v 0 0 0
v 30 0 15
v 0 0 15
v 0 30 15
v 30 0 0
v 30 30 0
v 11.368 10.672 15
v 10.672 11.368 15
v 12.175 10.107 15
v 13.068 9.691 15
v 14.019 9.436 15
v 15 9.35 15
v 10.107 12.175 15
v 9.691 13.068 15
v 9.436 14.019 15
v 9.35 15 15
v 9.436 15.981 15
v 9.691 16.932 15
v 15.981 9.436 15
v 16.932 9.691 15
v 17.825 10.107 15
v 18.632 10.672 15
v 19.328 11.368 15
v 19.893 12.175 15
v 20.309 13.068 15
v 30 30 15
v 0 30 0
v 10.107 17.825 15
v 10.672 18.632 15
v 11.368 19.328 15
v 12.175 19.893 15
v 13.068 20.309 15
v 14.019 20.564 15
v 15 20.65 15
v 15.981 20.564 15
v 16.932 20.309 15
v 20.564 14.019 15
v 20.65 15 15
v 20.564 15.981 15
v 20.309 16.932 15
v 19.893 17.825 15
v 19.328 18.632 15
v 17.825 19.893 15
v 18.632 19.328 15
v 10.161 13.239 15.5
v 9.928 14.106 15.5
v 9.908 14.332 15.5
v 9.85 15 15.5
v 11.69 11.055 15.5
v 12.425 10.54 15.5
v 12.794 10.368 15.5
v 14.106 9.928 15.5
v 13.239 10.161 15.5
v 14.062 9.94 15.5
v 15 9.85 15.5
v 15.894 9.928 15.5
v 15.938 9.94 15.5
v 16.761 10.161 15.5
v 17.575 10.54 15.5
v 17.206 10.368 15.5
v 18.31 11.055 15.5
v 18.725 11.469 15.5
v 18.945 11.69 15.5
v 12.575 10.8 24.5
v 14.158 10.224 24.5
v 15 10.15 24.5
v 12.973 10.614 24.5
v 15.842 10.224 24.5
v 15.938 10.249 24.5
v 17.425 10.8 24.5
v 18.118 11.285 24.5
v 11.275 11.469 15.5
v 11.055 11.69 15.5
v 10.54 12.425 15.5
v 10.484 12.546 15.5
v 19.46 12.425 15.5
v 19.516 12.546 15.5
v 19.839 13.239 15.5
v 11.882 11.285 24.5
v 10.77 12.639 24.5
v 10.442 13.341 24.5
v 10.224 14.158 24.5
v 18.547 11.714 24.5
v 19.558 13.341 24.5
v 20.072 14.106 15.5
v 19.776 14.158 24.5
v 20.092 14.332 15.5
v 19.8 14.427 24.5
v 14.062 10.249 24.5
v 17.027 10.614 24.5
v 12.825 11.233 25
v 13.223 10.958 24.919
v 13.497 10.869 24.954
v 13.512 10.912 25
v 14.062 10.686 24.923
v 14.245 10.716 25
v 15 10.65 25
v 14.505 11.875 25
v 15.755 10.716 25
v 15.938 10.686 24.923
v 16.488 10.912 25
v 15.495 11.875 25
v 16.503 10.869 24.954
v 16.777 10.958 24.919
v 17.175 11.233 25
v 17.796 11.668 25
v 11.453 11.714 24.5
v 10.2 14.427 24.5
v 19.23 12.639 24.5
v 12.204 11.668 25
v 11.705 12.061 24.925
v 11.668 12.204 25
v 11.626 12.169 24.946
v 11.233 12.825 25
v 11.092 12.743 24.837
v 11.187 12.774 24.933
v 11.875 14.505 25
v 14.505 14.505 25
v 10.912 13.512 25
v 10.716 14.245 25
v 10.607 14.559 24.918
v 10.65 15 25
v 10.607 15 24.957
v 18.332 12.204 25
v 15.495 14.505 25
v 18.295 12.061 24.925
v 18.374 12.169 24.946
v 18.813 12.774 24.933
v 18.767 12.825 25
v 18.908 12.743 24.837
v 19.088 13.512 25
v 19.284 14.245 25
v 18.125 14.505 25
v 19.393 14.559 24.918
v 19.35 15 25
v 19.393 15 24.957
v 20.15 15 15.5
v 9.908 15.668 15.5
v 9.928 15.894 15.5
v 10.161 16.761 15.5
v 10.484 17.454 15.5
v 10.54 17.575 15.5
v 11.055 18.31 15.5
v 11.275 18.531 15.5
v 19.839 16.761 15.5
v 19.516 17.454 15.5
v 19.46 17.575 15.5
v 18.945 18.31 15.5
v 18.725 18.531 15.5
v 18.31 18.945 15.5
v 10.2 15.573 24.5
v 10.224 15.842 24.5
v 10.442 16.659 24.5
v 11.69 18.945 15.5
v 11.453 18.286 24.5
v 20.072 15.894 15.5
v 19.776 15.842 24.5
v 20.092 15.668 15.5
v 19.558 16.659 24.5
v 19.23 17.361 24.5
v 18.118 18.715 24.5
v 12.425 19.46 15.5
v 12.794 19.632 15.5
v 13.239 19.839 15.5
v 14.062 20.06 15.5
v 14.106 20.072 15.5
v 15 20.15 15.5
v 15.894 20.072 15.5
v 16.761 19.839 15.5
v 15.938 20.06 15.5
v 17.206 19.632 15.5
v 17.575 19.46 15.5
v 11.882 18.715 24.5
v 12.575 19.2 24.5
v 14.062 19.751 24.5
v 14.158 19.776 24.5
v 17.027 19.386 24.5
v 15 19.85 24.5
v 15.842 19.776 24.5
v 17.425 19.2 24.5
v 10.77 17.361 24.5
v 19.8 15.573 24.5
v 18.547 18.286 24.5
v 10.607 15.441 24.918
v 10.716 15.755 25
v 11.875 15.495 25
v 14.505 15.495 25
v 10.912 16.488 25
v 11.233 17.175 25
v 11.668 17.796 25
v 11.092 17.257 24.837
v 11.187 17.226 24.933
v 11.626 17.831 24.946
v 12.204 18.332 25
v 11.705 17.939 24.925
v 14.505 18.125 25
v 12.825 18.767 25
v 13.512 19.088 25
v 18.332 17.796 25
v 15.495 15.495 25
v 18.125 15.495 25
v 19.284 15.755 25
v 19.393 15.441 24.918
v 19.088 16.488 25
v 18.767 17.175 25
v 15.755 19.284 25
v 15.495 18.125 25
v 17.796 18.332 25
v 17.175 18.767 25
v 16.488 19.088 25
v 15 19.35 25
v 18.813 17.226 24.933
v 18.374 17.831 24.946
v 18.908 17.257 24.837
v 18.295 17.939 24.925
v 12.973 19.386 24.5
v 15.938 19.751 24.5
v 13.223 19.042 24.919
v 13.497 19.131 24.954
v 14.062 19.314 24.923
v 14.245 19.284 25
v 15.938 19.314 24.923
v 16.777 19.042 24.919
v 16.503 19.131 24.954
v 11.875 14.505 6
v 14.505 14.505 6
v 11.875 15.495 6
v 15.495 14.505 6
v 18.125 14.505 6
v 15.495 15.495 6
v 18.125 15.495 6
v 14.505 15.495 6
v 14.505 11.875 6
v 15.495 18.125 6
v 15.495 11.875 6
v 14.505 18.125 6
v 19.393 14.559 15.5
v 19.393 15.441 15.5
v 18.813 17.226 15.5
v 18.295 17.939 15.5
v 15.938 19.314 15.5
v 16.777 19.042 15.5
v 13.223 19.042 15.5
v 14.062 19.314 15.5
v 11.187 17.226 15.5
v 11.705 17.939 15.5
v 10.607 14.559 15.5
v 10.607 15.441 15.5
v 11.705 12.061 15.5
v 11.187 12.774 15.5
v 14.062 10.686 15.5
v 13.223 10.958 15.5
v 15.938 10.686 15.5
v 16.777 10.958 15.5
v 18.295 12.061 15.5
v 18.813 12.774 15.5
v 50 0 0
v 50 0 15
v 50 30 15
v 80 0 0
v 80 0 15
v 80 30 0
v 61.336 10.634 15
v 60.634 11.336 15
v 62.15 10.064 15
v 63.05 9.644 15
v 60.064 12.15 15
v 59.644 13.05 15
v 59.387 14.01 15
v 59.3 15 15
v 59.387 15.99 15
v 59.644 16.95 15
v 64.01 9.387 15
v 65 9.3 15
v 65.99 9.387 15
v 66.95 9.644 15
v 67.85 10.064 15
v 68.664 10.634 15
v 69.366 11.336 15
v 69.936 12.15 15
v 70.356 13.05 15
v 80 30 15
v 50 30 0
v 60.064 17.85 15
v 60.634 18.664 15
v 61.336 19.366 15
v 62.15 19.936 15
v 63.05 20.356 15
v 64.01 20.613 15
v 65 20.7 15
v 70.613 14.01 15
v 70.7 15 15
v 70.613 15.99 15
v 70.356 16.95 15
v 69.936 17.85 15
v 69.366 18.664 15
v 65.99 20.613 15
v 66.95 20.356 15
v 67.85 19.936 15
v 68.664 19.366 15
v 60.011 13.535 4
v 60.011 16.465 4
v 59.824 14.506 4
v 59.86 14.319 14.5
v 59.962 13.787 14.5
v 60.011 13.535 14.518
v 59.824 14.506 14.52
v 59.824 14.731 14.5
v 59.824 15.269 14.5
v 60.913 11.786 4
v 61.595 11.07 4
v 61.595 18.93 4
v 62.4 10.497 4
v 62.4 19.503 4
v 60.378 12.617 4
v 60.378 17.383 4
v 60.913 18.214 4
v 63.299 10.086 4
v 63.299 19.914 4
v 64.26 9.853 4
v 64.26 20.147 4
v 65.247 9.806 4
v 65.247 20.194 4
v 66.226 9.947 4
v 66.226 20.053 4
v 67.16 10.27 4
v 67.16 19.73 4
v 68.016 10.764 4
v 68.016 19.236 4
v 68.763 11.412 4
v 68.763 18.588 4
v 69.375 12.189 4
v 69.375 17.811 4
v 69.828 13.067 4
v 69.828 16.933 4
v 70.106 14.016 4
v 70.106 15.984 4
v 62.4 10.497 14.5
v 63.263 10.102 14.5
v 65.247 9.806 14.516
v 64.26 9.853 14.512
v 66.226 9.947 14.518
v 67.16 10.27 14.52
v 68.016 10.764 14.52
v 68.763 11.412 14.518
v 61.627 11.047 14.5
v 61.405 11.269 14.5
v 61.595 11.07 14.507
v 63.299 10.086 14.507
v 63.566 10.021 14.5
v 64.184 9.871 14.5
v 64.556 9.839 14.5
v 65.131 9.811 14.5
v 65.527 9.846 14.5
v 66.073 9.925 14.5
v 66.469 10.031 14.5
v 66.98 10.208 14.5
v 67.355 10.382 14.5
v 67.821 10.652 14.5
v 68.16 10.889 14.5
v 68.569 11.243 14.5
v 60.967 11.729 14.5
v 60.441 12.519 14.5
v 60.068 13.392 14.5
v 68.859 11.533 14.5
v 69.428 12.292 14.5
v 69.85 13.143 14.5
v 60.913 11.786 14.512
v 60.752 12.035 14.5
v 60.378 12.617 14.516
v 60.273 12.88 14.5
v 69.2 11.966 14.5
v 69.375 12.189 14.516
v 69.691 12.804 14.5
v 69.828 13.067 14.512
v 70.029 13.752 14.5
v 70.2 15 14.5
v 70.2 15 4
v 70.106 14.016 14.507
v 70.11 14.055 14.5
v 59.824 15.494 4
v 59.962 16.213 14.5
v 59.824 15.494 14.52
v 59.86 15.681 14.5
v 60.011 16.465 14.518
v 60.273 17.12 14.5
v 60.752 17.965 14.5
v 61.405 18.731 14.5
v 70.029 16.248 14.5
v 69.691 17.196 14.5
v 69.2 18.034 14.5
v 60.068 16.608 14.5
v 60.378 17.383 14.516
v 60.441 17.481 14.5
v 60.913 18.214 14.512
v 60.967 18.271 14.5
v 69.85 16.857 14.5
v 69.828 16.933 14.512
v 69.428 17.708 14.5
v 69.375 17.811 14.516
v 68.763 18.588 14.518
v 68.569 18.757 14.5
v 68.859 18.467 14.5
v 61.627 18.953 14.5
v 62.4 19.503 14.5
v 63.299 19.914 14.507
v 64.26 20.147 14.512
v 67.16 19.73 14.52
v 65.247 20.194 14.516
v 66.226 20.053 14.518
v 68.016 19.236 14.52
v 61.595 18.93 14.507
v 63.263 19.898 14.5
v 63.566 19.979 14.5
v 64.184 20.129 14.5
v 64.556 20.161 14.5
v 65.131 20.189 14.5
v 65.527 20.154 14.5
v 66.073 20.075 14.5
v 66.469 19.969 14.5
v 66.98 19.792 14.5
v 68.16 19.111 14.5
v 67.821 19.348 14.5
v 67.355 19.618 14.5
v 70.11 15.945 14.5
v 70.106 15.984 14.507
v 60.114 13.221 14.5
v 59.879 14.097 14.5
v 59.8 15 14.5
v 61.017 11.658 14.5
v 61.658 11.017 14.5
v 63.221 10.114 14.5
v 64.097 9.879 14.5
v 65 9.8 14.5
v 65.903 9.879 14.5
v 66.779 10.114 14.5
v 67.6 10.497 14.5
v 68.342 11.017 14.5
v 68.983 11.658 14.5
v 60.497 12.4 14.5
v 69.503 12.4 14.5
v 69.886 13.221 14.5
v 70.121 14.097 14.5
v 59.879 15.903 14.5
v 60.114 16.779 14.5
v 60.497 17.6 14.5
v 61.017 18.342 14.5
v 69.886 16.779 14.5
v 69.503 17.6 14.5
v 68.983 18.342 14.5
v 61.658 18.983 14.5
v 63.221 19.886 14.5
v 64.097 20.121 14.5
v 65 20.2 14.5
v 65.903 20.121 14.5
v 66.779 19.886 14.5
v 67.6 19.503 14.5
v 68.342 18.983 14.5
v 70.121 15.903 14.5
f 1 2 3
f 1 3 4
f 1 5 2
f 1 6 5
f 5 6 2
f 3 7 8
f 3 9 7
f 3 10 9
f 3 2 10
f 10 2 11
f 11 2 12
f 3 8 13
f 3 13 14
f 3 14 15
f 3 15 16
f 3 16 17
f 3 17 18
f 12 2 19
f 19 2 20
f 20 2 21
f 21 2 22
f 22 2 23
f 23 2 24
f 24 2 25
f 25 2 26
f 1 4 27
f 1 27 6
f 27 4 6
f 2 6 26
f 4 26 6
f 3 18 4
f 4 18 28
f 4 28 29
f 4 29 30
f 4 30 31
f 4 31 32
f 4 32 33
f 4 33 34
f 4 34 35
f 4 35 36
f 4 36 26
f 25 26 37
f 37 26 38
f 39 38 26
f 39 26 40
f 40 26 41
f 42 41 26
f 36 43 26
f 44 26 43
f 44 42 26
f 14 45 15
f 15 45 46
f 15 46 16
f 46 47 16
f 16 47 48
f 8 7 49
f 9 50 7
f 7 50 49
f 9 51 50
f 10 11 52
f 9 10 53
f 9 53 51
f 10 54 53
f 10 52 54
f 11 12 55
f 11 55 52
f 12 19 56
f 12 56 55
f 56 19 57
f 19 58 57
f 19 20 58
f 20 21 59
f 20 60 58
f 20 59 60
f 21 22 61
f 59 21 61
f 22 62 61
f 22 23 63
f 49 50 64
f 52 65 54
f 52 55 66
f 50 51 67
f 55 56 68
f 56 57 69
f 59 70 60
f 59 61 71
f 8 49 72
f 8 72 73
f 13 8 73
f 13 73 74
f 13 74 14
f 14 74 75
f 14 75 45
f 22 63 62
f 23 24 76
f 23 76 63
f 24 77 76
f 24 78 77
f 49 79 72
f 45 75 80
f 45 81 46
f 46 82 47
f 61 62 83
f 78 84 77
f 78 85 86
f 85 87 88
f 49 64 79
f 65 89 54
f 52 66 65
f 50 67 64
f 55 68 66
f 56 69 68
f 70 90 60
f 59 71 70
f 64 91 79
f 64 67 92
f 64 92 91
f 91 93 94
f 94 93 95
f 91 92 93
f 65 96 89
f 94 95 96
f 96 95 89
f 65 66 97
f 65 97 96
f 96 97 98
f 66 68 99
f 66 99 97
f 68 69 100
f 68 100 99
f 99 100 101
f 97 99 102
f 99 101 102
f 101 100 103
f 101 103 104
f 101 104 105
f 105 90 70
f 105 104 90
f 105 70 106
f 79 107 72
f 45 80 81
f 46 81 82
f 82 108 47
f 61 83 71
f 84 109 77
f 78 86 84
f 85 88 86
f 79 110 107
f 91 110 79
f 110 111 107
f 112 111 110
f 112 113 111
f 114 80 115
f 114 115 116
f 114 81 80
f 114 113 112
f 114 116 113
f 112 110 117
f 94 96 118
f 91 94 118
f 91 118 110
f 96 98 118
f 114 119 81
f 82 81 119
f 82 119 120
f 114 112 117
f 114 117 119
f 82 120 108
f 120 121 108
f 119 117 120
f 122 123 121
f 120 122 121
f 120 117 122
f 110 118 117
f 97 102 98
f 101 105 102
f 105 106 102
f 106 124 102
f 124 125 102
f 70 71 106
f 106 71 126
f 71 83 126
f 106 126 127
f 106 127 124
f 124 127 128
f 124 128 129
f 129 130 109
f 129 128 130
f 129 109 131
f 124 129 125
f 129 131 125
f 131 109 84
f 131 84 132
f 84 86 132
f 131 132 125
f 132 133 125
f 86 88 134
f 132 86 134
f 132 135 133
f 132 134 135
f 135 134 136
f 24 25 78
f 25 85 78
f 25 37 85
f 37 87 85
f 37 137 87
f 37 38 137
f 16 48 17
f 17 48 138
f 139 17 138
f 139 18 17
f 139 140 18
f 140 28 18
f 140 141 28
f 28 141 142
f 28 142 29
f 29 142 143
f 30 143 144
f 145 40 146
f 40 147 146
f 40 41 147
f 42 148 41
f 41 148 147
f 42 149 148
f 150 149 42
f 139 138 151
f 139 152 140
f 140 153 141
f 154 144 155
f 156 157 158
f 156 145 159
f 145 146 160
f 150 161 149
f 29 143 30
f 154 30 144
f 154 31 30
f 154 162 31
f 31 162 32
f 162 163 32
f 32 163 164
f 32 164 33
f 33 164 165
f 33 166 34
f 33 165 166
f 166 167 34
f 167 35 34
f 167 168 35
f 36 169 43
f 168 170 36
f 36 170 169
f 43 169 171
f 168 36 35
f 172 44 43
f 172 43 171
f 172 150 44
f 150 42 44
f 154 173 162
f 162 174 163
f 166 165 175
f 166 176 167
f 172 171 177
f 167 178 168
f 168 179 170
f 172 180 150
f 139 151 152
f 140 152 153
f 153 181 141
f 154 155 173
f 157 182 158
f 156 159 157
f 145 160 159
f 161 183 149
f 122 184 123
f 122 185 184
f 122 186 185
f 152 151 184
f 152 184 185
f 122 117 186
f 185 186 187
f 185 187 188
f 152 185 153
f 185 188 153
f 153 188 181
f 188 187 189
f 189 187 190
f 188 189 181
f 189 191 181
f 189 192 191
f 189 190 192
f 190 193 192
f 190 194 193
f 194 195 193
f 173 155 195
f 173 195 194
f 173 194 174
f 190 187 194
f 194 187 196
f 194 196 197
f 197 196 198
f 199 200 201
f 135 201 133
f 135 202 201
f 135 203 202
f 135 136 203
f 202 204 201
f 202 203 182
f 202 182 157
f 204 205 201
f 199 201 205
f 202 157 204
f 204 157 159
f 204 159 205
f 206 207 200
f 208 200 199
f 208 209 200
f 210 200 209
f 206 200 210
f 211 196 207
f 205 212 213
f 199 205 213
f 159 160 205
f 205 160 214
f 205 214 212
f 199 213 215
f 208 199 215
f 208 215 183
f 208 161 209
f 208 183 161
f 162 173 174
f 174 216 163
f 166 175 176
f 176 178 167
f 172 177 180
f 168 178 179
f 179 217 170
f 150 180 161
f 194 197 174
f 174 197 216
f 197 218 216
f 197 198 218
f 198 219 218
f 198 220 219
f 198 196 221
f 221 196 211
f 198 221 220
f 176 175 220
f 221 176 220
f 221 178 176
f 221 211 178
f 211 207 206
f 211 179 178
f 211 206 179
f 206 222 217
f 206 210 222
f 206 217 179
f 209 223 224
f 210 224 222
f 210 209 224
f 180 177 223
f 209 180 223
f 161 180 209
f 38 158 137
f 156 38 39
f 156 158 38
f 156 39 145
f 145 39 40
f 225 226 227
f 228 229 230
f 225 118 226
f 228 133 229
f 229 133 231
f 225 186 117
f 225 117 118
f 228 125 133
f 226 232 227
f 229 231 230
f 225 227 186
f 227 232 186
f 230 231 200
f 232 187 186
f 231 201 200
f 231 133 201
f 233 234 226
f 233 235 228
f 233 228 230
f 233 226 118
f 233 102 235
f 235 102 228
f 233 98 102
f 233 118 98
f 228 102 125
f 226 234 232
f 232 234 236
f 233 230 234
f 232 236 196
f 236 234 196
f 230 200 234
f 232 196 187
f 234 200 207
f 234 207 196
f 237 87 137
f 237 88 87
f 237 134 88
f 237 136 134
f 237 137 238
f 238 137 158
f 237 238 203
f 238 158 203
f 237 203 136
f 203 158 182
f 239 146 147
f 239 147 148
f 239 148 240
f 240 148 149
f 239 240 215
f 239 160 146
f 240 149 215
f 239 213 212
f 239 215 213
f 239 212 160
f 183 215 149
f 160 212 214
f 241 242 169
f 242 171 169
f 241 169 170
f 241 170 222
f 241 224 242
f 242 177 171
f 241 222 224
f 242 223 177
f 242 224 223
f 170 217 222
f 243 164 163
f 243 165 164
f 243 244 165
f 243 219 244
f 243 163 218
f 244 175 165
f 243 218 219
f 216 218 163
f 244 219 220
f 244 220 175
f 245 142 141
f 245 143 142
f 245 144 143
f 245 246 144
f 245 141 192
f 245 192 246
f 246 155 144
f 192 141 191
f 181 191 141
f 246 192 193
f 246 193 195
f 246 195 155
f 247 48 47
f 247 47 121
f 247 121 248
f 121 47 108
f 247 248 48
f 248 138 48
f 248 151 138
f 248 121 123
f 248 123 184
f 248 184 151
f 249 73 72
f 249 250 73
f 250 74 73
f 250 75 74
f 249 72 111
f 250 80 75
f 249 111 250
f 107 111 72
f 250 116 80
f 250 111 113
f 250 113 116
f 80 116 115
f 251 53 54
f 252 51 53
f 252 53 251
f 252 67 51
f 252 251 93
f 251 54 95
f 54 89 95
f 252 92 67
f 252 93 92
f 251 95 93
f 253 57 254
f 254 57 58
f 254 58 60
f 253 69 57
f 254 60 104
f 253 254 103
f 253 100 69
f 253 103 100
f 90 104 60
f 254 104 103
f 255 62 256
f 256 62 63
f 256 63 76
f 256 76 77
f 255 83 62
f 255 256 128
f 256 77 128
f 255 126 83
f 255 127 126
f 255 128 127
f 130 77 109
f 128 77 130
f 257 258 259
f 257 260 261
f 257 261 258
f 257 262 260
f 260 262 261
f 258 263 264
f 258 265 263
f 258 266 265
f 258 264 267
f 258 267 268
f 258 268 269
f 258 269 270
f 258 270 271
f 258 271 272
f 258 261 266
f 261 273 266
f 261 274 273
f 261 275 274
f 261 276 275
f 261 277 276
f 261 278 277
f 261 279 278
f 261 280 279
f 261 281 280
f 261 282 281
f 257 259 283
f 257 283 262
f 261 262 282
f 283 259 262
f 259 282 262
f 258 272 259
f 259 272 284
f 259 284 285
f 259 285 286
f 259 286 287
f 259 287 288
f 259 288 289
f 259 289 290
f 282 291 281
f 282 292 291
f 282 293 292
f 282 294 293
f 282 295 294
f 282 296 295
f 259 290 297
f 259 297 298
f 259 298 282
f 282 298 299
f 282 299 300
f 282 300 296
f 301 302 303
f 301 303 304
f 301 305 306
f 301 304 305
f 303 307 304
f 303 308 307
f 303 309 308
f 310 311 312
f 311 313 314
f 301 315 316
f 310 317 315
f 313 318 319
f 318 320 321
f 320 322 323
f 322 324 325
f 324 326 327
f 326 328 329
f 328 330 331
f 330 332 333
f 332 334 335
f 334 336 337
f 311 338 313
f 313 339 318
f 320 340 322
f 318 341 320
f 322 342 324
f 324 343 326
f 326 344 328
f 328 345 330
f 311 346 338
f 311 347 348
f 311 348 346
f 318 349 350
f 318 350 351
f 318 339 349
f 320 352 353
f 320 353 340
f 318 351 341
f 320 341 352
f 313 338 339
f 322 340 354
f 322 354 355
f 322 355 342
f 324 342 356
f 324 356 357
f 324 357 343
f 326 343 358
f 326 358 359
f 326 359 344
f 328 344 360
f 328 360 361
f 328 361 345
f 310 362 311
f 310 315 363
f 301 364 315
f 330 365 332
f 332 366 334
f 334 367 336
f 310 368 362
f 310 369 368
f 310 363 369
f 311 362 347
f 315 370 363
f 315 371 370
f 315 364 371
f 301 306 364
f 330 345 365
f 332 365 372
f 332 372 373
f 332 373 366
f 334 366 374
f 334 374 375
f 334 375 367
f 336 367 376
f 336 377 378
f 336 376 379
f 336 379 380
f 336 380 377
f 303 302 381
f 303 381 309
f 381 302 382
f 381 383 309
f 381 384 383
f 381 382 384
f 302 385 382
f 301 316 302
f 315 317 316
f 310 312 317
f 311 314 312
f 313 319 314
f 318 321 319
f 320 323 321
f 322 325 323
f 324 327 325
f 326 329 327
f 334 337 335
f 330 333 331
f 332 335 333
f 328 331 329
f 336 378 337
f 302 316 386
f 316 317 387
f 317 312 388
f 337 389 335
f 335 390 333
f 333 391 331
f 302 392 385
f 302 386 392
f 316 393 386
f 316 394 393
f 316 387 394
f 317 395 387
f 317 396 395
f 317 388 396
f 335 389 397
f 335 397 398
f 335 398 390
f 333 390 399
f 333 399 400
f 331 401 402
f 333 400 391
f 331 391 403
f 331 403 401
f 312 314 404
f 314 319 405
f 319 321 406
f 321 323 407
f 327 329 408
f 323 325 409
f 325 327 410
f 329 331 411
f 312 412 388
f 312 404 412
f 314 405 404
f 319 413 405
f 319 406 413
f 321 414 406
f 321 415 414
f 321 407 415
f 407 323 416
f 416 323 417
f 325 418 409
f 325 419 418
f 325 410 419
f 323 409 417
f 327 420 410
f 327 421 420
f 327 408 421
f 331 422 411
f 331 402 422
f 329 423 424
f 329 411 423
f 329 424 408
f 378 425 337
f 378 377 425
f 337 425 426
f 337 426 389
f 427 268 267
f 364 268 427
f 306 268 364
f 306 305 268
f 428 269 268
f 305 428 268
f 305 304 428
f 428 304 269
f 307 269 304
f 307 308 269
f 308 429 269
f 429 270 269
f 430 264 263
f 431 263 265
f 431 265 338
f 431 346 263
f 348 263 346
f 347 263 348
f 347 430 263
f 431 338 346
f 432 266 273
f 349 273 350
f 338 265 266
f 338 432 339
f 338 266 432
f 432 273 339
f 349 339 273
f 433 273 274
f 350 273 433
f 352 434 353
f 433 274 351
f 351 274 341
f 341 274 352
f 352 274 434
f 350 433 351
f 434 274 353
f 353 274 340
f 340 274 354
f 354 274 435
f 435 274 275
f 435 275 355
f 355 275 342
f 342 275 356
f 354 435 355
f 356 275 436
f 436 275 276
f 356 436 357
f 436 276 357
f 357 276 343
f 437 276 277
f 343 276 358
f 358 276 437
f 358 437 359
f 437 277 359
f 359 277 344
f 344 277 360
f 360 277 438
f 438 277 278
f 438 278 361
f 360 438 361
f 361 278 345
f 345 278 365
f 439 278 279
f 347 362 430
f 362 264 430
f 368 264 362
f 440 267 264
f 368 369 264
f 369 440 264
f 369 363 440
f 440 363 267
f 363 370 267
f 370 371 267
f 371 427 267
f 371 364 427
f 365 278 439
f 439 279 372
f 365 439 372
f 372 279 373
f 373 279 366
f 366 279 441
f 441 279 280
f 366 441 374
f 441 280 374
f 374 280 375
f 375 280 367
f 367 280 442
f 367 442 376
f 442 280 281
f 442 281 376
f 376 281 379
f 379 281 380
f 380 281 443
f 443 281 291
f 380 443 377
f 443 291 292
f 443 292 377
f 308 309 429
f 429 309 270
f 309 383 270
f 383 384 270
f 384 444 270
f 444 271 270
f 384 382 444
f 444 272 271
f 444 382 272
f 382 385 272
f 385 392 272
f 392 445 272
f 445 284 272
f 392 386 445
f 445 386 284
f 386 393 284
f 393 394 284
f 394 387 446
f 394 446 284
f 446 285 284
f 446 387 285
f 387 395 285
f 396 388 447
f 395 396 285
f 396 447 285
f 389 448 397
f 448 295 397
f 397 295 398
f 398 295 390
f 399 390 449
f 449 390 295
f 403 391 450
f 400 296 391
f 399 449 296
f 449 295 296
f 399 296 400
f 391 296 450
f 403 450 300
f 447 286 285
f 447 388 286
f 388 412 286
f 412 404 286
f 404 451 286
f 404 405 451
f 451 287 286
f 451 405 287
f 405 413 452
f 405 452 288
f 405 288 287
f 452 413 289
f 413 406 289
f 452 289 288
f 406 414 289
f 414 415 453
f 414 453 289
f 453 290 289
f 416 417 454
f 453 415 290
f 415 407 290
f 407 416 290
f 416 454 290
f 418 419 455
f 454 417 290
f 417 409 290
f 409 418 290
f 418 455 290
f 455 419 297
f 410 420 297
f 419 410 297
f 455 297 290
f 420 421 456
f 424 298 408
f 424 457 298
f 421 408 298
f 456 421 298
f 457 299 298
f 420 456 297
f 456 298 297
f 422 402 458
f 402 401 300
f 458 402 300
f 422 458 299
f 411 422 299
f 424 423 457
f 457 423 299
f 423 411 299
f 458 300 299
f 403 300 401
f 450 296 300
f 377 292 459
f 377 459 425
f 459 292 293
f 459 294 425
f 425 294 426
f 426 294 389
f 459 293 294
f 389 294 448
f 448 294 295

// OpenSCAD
// Plug and hole that keep two cuboids together.
//
// The plug is a vertical cylinder that fits into a hole
// in the other cuboid, providing stability and alignment.
// The plug is designed to be sturdy and easy to print,
// with a slight taper for easy insertion.
// Same goes for the hole, which is designed to be
// complementary to the plug.
//
// The plug also has a slightly angled outer hull so it
// can easily enter the hole, but then provides a very good
// fit once fully inserted. The hole has vertical walls,
// and the plug outer diameter varies from slightly smaller
// at  the top to slightly thicker at its bottom.
//
// To create extra strength and flexing for tolerance compliance,
// the outer wall of the plug is ribbed by cutting empty tubes
// around its circumference. Also, a cross-shaped hollow space goes
// through the plug to add extra walls, enforcing strength of the part.
// That cross-shaped hollow space penetrates the part (cuboid) the plug
// connects, to give it more protections from separations at the joint.

$preview = true;
$fa = $preview ? 8 : 1;
$fs = $preview ? 1 : 0.1;

// Cuboid dimensions
width = 30;
depth = 30;
height = 15;
spacing = 50; // Gap between the two cubes

// Plug: tapers from a thick base to a thinner tip for easy starting insertion
plug_height = 10;
plug_radius = 5;
plug_variance = .3;
plug_wall_thickness = 1.5;

// Hole: vertical walls sized around the plug's tip, so the fit tightens
// as the thicker part of the plug is pushed in
hole_clearance = 0.2;
hole_radius = plug_radius + hole_clearance;
hole_depth = plug_height + 1;

// Cross-shaped hollow through the plug, continuing down into its cuboid.
// Sized against the tip (the plug's narrowest point) so a wall of
// plug_wall_thickness remains before the hollow would break the outer wall.
cross_arm_thickness = .66 * plug_wall_thickness;
cross_arm_length = 2 * (plug_radius - 1.25 * plug_wall_thickness);
cross_depth = plug_height + height * 0.6;

// Chamfer applied to the plug's base, its tip, and the hole's outer rim
chamfer_size = plug_wall_thickness / 3;

// Ribs cut into the plug's outer wall for flex, sized and placed so they
// only cut halfway through plug_wall_thickness instead of breaking the wall.
// Pulled back from the bottom so the base chamfer stays solid.
rib_count = 10;
rib_radius = 0.5 * plug_wall_thickness;
rib_offset = plug_radius - plug_wall_thickness / 2 + rib_radius;
rib_height = plug_height - chamfer_size;

// Derived dimensions
plug_tip_radius = plug_radius - plug_variance / 2;
plug_base_radius = plug_radius + plug_variance / 2;

module tapered_plug() {
    // Profile flares out at the base and cuts a flat corner at the tip
    rotate_extrude()
        polygon(points = [
            [0, 0],
            [plug_base_radius + chamfer_size, 0],
            [plug_base_radius, chamfer_size],
            [plug_tip_radius, plug_height - chamfer_size],
            [plug_tip_radius - chamfer_size, plug_height],
            [0, plug_height]
        ]);
}

module cross_hollow(length, depth) {
    // "+" shaped void made of two crossed slots
    union() {
        cube([length, cross_arm_thickness, depth], center = true);
        cube([cross_arm_thickness, length, depth], center = true);
    }
}

module plug_ribs() {
    for (i = [0 : rib_count - 1])
        rotate([0, 0, i * 360 / rib_count])
            translate([rib_offset, 0, 0])
                cylinder(h = rib_height, r = rib_radius);
}

module plug_cuboid() {
    difference() {
        union() {
            cube([width, depth, height]);
            translate([width / 2, depth / 2, height])
                tapered_plug();
        }
        translate([width / 2, depth / 2, height + plug_height - cross_depth / 2])
            cross_hollow(cross_arm_length, cross_depth);
        translate([width / 2, depth / 2, height + chamfer_size])
            plug_ribs();
    }
}

module hole_cuboid() {
    difference() {
        cube([width, depth, height]);
        translate([width / 2, depth / 2, height - hole_depth])
            cylinder(h = hole_depth + 0.1, r = hole_radius);
        // Chamfer the outer rim of the hole
        translate([width / 2, depth / 2, height - chamfer_size])
            cylinder(h = chamfer_size, r1 = hole_radius, r2 = hole_radius + chamfer_size);
    }
}

plug_cuboid();

translate([spacing, 0, 0])
    hole_cuboid();
